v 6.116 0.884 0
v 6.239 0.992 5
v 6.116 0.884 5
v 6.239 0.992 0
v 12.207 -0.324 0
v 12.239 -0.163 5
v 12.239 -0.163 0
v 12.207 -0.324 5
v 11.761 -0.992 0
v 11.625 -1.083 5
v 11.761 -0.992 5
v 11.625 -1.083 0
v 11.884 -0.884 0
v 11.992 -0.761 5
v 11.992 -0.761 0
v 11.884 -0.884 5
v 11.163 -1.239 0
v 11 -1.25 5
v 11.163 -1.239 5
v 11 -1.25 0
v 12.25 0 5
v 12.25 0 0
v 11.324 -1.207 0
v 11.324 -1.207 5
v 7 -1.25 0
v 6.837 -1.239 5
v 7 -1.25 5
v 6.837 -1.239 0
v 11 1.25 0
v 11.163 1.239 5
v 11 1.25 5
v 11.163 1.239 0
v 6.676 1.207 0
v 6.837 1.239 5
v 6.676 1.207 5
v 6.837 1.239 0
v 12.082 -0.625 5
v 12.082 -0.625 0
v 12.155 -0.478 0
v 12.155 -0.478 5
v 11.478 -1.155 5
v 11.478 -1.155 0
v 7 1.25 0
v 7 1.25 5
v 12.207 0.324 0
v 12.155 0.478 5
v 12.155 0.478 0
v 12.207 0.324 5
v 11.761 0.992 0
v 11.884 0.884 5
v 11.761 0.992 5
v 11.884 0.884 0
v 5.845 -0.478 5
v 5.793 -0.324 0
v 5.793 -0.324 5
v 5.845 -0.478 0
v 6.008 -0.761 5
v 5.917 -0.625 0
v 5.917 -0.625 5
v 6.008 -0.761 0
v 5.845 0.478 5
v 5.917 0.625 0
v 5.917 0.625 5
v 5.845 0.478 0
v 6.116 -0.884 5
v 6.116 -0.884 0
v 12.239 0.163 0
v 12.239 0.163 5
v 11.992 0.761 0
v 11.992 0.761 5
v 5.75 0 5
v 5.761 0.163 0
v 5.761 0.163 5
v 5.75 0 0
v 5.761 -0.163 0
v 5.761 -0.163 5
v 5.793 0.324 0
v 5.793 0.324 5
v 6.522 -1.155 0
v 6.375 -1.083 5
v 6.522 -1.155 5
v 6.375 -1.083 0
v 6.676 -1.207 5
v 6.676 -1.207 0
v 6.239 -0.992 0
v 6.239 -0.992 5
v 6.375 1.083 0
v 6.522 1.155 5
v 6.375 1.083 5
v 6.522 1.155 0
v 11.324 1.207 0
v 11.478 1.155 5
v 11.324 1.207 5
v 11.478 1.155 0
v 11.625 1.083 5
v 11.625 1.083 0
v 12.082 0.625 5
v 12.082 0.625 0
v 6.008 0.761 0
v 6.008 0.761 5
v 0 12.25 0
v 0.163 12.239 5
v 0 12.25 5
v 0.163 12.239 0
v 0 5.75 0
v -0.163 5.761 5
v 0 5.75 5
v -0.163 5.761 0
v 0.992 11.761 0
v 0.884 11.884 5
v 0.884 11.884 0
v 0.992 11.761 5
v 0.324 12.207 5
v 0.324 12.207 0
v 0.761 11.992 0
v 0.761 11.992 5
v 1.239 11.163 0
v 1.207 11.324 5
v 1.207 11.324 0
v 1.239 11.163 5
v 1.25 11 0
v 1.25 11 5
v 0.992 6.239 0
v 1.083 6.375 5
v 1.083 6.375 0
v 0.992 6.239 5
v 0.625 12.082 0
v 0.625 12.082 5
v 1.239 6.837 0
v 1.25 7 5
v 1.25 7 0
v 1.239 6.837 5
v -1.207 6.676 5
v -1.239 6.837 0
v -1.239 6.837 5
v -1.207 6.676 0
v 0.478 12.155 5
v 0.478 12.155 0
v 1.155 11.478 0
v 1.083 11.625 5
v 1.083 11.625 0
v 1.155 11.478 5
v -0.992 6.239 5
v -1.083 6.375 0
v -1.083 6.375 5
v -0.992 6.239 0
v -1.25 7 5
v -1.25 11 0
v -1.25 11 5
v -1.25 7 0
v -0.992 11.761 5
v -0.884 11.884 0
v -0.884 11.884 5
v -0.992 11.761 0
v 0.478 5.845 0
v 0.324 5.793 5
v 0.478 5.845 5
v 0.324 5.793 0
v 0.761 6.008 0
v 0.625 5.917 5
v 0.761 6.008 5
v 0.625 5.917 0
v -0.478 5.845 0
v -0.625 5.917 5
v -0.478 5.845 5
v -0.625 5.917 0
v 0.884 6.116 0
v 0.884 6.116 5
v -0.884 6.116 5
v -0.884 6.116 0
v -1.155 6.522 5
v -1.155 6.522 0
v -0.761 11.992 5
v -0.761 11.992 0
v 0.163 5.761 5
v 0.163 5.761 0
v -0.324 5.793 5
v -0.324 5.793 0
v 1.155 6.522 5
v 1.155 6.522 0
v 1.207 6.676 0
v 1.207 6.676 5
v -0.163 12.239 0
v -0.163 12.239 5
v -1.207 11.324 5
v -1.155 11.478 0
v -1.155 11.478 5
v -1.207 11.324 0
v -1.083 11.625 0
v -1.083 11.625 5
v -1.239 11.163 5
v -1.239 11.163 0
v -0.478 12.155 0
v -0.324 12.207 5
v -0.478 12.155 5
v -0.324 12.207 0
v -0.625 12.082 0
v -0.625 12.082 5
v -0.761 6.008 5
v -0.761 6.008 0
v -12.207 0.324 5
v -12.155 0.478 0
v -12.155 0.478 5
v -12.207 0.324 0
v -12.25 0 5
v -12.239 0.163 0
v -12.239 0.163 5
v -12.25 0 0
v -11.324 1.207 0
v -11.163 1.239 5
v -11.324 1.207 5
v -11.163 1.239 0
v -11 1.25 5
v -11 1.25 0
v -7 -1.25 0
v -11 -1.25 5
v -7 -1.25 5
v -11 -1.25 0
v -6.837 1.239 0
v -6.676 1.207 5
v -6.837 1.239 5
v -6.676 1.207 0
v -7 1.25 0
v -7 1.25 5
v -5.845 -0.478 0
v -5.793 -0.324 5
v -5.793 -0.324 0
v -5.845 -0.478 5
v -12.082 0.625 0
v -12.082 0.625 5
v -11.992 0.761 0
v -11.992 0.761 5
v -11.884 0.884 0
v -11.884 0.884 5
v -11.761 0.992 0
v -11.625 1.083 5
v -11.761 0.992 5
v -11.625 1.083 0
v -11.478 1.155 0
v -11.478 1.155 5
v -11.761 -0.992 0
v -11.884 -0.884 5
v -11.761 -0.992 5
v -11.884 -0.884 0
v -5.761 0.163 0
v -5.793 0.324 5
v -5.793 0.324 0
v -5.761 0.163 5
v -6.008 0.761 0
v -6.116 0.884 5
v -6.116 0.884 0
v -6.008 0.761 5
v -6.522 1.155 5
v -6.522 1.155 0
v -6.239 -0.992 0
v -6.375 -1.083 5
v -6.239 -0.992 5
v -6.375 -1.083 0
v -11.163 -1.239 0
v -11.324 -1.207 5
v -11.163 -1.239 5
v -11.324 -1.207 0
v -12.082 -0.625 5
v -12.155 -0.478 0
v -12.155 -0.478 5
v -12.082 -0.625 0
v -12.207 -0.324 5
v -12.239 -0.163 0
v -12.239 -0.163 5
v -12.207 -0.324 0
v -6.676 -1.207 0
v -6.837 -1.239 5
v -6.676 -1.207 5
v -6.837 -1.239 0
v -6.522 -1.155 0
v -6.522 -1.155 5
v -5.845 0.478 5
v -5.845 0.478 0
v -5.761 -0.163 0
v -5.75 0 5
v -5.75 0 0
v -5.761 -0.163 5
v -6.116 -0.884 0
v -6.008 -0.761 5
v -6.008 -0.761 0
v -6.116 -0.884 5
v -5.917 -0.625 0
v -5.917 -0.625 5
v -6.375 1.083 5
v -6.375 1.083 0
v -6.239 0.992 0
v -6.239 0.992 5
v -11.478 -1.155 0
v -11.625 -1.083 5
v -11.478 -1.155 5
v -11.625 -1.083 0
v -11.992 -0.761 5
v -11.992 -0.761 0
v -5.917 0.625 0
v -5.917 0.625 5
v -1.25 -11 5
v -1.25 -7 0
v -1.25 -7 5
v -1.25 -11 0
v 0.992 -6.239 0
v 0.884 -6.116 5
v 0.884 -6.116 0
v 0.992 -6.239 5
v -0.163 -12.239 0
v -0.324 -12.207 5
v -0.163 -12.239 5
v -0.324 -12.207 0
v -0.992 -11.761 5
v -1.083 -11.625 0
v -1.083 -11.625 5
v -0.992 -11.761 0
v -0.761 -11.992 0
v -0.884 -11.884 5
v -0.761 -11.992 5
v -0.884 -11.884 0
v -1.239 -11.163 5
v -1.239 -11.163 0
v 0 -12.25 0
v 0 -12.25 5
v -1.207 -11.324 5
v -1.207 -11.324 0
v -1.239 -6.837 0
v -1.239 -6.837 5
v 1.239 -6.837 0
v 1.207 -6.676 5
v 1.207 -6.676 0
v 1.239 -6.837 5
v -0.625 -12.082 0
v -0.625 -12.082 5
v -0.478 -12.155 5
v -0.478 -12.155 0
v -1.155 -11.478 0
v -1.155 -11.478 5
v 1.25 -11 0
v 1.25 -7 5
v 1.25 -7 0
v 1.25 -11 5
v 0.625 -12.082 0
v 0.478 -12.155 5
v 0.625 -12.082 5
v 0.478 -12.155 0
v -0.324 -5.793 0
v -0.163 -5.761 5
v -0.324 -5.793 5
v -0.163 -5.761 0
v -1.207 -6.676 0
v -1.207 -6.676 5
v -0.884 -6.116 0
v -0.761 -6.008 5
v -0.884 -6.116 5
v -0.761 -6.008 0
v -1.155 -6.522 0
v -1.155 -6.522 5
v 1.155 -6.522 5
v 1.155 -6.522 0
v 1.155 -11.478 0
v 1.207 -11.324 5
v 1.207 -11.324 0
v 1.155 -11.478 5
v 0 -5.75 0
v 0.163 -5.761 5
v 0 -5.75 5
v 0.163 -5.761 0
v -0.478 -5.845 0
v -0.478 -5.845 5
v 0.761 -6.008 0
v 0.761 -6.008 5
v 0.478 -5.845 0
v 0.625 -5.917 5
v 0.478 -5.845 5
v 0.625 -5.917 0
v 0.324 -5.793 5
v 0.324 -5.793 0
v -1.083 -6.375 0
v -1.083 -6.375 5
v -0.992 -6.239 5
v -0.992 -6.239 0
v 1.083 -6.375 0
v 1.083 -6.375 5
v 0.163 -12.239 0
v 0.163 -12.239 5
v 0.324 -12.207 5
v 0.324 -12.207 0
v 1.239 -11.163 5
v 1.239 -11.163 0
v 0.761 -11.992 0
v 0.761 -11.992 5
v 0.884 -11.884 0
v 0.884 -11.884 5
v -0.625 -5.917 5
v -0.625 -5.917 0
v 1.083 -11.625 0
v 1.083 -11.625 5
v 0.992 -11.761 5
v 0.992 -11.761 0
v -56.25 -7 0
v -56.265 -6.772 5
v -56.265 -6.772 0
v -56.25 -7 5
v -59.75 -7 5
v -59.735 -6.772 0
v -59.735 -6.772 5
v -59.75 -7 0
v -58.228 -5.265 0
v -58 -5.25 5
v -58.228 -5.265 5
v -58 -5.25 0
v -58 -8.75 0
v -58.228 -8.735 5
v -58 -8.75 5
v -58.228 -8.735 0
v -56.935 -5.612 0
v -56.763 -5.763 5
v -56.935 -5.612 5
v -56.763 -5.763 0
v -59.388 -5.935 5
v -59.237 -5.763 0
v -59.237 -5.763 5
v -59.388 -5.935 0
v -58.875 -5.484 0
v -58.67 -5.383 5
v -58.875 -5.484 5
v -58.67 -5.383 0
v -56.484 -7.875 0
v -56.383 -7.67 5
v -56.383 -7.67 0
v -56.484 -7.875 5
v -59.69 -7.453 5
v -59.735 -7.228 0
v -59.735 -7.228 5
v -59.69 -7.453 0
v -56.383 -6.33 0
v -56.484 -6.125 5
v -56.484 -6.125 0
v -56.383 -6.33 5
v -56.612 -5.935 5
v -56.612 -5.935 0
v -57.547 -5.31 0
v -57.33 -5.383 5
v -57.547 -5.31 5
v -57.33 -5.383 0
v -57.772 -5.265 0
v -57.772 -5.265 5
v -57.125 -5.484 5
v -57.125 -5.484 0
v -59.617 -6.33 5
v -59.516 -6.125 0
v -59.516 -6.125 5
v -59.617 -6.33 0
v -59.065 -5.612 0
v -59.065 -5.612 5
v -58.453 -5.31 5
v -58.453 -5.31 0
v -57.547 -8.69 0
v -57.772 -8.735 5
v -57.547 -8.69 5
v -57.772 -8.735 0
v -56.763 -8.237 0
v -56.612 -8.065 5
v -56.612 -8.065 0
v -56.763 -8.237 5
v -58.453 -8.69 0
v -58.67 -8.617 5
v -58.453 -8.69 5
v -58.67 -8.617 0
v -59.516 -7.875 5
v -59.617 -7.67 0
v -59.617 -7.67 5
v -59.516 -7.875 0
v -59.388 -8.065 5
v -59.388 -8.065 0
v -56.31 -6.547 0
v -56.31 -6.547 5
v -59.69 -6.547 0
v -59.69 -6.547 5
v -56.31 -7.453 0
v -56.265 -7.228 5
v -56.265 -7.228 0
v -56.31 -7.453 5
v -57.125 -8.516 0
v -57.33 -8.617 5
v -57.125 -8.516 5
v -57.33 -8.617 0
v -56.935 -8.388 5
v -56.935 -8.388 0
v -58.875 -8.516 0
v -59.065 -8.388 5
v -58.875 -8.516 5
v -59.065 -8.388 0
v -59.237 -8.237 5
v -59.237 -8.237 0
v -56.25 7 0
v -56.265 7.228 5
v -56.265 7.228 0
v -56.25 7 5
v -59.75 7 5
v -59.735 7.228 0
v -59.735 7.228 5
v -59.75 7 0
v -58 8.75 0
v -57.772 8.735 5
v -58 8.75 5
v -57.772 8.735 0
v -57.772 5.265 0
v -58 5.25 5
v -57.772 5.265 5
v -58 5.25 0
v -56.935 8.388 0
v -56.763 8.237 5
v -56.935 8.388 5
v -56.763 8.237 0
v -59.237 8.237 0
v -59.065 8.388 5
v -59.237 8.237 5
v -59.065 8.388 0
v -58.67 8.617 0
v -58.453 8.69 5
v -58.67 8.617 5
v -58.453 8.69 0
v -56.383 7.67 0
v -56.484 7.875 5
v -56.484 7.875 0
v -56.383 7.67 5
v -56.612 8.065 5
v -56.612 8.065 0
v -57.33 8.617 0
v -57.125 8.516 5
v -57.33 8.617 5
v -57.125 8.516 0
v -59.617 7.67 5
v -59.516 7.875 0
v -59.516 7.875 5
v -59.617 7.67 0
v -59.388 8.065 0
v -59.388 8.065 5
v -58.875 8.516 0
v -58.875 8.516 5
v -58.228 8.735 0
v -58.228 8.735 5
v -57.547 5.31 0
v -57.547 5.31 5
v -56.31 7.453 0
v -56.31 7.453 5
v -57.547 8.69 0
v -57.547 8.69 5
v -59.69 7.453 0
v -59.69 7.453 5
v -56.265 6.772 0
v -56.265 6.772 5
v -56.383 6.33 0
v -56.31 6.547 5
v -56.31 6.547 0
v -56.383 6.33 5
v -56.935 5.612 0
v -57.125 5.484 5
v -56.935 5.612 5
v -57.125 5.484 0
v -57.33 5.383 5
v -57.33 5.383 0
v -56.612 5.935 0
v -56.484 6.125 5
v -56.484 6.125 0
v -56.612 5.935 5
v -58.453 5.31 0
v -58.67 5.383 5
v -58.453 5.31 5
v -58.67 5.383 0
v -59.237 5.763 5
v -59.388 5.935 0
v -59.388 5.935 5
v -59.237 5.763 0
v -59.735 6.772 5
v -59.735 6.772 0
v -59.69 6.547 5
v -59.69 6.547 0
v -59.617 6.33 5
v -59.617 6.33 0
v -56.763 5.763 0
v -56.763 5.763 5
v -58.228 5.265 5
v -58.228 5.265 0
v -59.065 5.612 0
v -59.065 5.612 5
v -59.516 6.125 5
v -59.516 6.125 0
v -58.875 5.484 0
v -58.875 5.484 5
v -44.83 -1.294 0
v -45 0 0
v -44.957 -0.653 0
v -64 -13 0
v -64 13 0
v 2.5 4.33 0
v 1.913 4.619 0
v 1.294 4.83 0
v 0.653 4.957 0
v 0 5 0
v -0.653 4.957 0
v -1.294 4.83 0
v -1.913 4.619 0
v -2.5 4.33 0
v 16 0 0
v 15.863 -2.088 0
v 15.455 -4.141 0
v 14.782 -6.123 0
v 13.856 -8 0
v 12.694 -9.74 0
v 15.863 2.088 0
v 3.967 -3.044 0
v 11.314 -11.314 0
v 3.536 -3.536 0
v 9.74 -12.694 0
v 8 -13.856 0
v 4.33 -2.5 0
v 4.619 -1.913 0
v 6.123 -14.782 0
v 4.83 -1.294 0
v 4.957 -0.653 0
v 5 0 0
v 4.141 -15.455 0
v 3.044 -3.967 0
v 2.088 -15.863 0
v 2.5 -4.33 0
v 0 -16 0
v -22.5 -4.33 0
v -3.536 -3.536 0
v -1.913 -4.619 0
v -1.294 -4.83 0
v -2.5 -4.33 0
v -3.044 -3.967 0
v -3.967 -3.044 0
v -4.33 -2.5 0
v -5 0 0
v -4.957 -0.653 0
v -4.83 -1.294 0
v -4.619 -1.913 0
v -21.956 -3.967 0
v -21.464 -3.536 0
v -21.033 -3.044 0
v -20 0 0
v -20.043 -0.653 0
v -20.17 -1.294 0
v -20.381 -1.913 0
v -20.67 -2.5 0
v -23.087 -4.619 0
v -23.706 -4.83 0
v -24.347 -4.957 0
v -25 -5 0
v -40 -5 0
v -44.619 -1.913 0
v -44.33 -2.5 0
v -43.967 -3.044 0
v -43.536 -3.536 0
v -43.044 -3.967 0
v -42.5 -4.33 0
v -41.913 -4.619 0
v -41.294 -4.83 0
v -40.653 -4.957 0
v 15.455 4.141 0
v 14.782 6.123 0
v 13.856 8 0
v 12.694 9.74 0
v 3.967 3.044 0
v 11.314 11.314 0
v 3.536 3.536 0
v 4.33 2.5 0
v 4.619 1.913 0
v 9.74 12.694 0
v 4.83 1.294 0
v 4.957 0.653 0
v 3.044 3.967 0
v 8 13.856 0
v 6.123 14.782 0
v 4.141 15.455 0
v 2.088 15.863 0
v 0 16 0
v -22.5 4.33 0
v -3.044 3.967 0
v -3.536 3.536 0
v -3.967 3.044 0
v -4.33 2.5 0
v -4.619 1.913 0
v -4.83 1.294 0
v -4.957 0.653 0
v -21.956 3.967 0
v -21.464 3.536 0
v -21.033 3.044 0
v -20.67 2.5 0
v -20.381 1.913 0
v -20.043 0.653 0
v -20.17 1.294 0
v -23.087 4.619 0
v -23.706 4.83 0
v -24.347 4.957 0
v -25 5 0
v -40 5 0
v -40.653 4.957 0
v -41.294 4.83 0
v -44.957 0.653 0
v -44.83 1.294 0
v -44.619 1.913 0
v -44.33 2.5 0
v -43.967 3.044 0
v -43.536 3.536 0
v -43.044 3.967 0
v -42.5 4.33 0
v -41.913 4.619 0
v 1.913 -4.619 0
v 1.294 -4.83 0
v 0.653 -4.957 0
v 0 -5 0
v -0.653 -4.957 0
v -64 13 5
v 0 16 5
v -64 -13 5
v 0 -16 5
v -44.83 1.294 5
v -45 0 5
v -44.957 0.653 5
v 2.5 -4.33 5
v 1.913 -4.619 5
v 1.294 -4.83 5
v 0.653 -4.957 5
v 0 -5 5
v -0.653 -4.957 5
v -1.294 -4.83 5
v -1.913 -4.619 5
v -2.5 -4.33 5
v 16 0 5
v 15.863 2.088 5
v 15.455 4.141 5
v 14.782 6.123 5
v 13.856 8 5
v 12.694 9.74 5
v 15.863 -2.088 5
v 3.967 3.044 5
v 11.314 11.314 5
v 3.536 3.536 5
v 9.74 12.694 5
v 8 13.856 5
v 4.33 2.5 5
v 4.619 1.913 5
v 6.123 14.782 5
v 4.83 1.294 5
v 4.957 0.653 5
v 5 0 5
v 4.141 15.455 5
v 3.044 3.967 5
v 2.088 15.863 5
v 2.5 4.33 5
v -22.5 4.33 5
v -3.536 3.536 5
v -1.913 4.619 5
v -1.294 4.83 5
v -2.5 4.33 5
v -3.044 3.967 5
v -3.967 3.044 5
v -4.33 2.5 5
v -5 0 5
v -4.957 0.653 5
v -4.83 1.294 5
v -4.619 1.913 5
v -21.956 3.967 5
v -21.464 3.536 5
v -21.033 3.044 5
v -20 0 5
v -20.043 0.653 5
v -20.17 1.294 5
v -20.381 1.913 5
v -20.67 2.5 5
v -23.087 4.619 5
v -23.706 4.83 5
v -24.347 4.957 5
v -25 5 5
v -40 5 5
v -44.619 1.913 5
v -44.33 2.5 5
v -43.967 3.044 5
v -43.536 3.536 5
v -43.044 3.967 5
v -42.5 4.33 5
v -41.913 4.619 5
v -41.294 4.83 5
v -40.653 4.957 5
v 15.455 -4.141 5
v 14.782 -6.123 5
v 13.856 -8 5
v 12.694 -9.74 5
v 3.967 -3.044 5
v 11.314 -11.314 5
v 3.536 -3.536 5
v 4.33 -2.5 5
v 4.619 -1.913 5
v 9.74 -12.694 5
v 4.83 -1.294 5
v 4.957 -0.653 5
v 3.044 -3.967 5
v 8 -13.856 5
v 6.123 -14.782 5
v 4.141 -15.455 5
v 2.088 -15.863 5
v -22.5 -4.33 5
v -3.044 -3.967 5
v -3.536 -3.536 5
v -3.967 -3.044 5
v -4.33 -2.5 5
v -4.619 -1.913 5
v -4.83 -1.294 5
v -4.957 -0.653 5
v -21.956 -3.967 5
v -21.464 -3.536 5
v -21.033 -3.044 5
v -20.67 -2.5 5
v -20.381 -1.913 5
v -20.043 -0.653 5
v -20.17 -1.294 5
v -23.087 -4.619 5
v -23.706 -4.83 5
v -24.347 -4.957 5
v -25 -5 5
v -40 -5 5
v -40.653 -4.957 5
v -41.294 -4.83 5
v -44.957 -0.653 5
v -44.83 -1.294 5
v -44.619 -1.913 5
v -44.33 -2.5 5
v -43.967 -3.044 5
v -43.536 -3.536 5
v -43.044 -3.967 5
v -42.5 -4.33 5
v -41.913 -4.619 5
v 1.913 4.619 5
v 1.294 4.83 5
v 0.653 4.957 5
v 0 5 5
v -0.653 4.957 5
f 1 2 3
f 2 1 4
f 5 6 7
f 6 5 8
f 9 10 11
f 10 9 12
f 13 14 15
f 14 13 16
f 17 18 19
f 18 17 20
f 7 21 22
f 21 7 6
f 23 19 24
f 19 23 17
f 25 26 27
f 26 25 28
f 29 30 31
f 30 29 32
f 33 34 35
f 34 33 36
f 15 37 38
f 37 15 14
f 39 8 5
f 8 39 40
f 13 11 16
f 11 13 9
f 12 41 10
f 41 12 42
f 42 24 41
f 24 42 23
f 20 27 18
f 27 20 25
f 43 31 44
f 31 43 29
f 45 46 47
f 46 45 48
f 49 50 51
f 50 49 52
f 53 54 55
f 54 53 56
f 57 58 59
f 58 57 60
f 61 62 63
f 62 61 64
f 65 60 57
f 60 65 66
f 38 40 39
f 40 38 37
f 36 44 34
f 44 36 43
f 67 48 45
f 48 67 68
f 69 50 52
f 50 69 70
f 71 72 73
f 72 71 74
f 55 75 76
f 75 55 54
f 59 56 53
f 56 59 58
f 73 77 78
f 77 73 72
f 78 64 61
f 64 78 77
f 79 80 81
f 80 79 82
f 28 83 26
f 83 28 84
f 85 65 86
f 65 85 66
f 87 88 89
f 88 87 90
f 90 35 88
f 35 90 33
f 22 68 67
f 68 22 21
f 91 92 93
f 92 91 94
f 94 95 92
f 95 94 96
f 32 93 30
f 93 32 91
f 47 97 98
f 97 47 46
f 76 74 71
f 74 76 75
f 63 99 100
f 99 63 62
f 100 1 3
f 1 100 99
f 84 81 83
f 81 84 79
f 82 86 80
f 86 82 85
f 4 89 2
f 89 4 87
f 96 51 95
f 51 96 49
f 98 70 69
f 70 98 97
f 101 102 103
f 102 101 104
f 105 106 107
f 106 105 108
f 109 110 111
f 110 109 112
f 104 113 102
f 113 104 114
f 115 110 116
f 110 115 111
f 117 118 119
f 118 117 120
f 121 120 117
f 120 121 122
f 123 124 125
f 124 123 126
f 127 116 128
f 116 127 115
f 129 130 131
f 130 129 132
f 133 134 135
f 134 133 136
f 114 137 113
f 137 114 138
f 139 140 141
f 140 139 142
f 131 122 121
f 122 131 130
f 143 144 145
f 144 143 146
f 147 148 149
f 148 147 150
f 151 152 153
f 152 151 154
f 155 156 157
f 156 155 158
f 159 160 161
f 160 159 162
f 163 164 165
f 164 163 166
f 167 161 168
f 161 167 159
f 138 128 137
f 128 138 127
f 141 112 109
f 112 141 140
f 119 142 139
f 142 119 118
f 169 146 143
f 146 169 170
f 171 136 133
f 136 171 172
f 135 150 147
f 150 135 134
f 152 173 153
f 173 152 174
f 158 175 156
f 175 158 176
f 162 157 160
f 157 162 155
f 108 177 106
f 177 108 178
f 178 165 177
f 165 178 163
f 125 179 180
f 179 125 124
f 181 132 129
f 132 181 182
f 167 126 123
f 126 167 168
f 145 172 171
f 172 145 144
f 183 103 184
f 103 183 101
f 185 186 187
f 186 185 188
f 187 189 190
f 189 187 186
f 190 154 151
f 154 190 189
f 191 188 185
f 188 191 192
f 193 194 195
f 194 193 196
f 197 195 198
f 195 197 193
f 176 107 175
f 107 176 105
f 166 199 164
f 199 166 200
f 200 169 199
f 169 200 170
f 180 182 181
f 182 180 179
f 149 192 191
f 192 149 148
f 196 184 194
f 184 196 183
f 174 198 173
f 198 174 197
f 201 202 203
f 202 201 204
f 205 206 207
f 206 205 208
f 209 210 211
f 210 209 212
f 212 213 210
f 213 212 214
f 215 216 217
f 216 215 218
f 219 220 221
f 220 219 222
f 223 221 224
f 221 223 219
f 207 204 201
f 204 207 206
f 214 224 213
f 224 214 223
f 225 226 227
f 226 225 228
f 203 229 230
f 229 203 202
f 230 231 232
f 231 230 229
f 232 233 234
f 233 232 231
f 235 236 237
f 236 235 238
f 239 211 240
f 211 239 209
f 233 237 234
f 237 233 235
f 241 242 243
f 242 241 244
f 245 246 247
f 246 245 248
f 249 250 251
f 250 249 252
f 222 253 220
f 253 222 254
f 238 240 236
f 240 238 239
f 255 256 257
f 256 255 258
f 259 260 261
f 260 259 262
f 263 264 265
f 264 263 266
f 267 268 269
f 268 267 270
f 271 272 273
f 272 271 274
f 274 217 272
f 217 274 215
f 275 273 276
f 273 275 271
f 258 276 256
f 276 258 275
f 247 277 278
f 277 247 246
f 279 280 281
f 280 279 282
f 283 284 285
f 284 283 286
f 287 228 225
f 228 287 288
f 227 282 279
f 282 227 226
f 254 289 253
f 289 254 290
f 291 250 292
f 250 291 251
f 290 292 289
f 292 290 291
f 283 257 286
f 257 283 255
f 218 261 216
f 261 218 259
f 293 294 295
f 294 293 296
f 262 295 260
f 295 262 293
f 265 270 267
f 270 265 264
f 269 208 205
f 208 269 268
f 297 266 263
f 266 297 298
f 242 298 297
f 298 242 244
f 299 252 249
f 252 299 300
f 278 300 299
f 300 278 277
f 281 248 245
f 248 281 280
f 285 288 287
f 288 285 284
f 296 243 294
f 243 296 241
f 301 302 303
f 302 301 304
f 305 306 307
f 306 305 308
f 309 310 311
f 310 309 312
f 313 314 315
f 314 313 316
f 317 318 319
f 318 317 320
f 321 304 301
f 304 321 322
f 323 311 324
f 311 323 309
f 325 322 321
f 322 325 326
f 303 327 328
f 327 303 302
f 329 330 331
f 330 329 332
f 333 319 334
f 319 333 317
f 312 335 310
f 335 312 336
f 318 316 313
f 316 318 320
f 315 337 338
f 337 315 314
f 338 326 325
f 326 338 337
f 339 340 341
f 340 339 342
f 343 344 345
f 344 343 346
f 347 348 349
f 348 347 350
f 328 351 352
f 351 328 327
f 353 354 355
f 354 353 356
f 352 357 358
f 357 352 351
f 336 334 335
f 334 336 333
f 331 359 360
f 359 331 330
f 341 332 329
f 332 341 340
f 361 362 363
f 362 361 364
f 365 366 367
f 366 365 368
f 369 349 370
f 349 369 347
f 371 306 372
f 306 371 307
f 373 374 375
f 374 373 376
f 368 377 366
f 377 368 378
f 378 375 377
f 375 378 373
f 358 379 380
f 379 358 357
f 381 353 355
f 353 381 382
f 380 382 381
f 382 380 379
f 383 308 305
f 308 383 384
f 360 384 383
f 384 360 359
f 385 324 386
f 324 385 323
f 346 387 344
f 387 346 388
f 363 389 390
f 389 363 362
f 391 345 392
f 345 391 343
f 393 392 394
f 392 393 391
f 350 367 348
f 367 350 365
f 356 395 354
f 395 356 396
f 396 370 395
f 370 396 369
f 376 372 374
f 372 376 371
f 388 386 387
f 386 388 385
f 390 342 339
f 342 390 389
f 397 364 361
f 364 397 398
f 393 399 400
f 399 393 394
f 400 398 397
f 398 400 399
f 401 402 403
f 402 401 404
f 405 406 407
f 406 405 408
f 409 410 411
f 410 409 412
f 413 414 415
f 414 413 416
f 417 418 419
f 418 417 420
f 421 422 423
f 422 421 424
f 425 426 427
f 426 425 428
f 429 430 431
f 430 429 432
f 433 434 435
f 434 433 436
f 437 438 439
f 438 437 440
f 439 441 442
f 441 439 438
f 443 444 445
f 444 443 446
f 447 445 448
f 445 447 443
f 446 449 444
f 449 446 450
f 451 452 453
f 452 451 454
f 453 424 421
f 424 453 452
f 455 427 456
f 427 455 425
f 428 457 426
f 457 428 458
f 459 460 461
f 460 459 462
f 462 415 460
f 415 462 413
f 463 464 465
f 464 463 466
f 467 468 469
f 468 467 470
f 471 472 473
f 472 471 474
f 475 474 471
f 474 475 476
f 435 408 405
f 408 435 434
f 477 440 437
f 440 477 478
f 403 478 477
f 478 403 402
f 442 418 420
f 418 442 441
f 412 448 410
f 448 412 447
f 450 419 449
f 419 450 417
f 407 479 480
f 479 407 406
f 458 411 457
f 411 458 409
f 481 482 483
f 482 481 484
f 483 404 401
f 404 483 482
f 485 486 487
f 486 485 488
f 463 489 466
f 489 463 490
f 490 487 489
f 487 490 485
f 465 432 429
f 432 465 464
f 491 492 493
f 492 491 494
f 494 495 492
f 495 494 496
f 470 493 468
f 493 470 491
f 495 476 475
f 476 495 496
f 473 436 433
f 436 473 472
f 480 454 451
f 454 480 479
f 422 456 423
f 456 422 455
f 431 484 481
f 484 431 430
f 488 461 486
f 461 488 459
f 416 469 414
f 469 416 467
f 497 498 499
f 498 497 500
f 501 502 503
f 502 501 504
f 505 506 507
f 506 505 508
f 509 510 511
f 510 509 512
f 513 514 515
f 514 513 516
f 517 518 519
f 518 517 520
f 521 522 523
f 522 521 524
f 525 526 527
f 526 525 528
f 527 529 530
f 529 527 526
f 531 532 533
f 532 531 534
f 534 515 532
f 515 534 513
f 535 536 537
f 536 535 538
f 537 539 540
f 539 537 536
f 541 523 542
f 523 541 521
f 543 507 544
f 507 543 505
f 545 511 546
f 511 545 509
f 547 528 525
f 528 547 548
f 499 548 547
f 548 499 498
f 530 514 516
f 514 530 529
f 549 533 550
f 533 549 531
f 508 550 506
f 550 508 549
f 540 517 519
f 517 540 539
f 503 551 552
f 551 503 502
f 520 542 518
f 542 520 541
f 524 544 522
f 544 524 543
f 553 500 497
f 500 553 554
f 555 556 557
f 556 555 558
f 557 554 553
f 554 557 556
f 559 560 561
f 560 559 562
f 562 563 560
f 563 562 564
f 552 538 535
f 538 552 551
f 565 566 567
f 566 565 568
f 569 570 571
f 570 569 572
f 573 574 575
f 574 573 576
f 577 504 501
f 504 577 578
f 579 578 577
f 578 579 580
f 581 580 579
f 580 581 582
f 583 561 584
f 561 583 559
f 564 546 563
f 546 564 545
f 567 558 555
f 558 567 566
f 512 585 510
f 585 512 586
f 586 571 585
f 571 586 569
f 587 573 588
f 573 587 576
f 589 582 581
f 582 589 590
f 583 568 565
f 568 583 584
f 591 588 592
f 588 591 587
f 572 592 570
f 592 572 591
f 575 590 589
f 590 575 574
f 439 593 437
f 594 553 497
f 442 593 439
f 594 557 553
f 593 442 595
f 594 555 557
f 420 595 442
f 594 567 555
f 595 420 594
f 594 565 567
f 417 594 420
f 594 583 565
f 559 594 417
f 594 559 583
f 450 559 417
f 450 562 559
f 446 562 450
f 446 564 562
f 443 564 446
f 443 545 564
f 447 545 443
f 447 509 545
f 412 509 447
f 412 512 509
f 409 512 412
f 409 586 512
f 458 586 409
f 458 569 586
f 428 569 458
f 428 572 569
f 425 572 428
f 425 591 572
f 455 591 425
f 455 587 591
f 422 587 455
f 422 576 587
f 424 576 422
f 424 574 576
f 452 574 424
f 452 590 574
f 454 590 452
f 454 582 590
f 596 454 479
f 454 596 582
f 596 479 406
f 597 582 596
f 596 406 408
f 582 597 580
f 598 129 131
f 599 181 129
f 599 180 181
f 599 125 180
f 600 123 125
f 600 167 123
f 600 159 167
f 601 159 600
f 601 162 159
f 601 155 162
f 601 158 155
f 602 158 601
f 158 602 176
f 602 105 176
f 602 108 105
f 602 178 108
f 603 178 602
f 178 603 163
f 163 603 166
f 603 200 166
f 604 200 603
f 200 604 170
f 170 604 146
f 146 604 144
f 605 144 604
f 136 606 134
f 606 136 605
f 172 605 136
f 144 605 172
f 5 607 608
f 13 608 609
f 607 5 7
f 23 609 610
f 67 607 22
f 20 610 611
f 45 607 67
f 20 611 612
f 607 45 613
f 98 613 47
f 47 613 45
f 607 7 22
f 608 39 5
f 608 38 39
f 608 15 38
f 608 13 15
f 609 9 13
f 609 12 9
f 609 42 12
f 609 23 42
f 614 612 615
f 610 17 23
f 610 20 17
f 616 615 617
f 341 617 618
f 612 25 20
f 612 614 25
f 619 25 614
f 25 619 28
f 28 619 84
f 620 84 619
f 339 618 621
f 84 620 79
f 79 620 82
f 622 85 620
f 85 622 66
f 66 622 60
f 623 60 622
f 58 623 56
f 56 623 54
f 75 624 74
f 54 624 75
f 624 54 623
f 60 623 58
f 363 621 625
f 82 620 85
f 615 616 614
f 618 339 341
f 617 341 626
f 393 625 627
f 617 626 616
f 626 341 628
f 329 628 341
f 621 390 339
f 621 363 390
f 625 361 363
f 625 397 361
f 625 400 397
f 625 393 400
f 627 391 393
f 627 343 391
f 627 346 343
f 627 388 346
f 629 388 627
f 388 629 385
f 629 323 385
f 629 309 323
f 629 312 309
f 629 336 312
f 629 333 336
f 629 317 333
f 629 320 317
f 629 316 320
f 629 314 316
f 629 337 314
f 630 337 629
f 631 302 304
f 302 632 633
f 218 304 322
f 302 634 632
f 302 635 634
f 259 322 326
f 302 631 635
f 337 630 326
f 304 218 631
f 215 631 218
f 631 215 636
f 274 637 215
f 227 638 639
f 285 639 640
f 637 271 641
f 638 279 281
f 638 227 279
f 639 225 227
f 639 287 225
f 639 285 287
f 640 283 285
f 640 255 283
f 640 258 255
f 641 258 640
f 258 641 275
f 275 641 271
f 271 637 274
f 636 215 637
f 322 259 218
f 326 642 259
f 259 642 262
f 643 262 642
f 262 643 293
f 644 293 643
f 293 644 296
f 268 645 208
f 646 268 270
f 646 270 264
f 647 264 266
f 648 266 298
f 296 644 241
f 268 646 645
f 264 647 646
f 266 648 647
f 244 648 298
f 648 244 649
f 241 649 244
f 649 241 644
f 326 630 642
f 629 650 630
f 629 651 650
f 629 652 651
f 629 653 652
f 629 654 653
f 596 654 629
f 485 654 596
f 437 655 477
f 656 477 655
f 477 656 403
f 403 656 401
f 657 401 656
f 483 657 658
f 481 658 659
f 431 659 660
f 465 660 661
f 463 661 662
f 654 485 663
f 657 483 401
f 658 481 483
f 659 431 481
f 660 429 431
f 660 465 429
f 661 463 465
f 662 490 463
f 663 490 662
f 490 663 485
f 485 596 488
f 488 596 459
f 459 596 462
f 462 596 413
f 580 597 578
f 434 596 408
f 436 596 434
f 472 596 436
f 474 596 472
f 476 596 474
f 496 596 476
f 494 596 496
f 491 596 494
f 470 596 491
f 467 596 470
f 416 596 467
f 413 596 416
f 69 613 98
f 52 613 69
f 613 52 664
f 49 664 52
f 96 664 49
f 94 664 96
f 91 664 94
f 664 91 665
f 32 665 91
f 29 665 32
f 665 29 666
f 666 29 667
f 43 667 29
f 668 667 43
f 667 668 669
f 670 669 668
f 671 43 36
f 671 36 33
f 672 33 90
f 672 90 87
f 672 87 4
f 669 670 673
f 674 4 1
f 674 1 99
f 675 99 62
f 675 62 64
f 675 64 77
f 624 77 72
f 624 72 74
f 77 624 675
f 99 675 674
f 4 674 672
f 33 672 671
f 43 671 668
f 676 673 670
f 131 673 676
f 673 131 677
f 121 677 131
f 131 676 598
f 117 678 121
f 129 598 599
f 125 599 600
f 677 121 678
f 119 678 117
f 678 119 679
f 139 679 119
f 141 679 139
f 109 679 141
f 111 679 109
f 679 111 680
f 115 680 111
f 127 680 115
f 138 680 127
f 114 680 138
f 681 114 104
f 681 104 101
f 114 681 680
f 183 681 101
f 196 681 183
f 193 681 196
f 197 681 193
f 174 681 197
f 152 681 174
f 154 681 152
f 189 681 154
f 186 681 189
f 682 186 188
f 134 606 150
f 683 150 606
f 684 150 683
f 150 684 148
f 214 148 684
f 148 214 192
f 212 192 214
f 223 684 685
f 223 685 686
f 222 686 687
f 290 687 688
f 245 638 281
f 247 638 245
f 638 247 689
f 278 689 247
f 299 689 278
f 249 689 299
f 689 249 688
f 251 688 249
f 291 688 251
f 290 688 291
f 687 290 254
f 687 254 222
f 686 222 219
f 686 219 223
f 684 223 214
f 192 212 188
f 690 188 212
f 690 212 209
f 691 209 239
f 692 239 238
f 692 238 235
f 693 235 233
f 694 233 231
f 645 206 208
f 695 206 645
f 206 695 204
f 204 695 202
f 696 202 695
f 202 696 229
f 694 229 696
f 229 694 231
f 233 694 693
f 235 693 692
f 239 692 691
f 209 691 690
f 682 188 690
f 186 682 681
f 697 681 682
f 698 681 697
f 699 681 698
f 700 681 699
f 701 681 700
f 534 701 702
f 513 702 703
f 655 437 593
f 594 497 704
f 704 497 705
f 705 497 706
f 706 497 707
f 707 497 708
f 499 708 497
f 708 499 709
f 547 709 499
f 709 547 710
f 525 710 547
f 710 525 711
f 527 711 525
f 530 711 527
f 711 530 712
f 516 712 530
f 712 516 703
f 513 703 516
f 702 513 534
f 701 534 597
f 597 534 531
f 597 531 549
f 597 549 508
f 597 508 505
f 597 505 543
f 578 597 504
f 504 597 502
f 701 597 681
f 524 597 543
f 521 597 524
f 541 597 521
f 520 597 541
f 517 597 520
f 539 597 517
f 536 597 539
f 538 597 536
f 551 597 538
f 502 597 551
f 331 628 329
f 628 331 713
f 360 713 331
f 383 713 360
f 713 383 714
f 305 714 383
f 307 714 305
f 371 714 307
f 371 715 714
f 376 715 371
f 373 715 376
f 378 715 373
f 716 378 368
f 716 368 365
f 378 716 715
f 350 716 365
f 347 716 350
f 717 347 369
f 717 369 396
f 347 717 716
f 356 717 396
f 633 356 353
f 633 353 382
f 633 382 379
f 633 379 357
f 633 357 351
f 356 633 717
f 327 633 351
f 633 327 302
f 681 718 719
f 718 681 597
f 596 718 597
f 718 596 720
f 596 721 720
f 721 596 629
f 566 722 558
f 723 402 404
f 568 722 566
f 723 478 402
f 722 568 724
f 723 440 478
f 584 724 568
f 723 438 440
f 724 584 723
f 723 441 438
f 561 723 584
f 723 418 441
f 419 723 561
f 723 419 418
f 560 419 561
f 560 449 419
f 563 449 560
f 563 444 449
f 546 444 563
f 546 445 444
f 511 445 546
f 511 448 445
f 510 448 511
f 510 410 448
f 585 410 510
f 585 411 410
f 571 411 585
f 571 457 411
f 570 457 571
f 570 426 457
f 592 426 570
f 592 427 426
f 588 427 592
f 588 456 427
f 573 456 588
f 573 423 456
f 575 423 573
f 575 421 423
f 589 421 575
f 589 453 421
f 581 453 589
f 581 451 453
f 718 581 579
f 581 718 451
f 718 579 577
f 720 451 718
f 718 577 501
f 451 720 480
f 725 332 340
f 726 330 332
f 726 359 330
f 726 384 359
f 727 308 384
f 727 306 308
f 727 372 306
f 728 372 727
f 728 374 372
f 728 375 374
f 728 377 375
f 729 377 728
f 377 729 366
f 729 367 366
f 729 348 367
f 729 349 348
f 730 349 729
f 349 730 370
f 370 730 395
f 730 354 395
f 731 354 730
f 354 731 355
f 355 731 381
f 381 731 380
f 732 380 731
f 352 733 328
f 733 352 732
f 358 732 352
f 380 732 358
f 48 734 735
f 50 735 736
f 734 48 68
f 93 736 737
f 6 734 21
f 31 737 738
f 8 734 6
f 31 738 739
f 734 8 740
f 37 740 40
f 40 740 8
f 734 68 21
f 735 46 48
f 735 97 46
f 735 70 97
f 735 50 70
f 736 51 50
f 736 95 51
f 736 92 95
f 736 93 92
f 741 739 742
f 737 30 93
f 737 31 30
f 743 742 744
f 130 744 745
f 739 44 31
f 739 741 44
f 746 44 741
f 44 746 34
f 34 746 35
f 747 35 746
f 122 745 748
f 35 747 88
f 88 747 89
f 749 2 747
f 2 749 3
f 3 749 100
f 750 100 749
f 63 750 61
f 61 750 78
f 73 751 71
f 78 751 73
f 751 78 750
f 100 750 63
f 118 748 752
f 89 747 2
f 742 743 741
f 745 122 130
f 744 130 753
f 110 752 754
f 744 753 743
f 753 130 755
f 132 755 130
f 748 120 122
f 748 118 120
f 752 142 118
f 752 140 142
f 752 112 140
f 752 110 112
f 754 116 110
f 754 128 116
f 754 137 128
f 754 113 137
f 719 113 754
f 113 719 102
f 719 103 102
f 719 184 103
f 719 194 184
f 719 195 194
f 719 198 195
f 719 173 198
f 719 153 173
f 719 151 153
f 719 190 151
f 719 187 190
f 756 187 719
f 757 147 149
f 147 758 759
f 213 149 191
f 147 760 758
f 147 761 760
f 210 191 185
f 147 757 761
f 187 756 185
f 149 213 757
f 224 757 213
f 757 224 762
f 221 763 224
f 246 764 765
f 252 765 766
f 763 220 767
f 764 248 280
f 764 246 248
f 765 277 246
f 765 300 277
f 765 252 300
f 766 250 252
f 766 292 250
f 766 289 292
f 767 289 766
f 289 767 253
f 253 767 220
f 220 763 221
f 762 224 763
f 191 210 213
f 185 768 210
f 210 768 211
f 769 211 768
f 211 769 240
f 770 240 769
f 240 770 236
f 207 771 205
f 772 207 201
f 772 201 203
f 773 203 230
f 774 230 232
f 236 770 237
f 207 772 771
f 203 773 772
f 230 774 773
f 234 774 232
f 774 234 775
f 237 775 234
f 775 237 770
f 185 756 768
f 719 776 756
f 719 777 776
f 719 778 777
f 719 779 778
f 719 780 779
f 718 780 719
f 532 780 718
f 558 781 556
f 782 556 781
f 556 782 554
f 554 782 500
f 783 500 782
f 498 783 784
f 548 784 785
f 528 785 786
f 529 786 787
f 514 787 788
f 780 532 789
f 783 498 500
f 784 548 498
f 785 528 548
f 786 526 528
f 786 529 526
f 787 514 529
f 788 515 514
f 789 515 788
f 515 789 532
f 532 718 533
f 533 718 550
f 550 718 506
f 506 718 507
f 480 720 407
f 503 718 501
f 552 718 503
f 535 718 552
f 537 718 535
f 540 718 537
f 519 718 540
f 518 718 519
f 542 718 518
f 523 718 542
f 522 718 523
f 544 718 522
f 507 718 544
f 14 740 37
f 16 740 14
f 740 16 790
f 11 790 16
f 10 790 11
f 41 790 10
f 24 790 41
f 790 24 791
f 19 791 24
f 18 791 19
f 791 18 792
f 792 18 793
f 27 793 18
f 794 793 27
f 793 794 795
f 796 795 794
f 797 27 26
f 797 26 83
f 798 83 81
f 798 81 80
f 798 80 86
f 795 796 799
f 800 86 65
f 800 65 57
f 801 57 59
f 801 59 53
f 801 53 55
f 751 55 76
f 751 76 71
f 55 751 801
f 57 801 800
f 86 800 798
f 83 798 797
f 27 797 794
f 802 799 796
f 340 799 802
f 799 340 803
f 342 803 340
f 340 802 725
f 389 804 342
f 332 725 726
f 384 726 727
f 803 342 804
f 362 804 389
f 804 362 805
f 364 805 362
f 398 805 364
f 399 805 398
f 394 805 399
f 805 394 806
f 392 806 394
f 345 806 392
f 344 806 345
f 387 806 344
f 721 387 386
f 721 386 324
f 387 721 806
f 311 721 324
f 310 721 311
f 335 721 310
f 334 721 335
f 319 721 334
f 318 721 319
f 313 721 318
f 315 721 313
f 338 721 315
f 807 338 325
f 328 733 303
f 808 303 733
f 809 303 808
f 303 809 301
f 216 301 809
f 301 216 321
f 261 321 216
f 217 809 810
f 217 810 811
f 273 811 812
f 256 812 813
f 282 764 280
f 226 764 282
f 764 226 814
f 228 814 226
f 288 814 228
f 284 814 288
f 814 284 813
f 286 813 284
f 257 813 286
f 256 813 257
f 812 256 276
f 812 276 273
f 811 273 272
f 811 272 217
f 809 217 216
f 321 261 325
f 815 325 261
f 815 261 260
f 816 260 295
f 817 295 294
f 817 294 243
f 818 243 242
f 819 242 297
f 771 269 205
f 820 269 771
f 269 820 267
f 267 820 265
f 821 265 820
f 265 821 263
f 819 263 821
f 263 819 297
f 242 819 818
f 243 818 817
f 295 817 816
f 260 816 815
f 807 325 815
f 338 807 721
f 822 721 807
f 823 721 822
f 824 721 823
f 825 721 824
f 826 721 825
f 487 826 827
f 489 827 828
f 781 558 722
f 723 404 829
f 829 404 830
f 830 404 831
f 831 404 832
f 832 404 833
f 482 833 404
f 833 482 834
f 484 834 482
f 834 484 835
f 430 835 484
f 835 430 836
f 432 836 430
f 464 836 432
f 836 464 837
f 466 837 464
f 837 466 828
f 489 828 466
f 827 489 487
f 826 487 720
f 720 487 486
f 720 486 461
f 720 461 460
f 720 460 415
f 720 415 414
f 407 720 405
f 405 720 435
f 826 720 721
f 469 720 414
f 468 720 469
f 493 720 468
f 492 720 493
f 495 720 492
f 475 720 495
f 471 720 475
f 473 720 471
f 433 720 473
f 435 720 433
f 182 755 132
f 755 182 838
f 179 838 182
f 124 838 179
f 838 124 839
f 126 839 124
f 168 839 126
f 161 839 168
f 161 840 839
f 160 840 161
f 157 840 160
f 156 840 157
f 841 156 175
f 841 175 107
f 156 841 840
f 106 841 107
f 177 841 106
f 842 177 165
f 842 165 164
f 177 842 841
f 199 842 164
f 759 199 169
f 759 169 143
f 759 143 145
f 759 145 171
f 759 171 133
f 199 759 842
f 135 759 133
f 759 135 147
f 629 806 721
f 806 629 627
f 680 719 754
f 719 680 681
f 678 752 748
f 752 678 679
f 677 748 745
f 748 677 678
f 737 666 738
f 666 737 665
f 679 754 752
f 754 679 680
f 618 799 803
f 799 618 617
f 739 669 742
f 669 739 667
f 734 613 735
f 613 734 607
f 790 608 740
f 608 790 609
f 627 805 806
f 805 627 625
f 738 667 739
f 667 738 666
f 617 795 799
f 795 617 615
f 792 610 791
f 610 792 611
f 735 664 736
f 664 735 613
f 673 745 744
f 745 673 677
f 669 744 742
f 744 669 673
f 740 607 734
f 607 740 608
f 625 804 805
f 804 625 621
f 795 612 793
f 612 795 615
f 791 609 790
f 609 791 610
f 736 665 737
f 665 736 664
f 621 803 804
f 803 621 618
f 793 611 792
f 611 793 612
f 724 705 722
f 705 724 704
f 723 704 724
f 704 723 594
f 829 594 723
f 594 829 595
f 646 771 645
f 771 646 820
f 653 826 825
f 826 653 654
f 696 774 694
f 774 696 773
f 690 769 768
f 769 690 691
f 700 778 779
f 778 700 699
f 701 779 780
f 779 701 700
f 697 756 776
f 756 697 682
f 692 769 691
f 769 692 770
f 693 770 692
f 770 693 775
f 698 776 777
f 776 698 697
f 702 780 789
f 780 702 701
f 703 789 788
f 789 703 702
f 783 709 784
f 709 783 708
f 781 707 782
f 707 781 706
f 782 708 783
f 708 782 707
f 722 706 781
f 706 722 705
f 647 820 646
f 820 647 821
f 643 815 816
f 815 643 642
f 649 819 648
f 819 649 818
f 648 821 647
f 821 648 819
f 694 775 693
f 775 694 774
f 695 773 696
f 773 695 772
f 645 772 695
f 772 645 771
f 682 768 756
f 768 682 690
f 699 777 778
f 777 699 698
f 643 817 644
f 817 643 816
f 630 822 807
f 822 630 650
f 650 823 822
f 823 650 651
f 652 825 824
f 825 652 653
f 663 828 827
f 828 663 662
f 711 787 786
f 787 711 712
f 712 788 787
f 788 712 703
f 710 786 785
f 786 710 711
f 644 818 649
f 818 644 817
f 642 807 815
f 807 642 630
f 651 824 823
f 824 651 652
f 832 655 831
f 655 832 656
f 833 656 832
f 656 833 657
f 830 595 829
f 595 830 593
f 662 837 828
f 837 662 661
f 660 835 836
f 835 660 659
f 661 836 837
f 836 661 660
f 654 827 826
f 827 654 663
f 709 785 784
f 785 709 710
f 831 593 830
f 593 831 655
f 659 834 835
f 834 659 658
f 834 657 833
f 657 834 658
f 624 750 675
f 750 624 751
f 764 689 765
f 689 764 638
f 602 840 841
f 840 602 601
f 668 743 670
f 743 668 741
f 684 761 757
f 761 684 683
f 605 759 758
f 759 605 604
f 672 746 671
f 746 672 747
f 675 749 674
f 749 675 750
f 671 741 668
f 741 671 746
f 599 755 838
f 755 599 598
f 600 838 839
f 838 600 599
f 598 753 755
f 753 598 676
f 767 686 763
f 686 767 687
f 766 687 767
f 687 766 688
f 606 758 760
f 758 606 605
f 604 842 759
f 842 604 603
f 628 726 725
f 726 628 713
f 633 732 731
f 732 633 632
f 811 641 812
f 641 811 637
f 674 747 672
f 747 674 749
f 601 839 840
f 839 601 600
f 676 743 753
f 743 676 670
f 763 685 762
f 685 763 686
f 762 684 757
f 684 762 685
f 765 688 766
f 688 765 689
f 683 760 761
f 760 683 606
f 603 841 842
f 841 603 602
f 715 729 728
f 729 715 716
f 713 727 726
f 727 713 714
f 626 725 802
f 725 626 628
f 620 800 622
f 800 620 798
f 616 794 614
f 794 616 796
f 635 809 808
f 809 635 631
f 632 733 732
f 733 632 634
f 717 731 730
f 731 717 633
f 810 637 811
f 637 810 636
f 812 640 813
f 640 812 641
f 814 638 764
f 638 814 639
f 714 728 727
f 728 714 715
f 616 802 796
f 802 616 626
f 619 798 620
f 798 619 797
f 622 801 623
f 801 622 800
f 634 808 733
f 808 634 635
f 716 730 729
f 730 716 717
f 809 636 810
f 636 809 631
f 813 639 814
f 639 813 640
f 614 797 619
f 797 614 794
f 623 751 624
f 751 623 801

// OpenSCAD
// file: hobby-joint-common.scad
// Rev A local joint datum: rotation axis at x=y=0, axial direction +z.
$fn=48;
shaft_x=-10.35;
horn_z=50;
front_t=5;
rear_top=-16.2;
rear_t=7;
bridge_r=58;
bridge_length=horn_z-rear_top;
bridge_pitch=14;
seat_d=13.2;
seat_depth=5.2;
module bridge_holes(h) {
    for(y=[-bridge_pitch/2,bridge_pitch/2])
        translate([-bridge_r,y,-1]) cylinder(d=3.5,h=h+2);
}
module arm_blank(t) {
    linear_extrude(t) hull() {
        circle(d=32);
        translate([-bridge_r,0]) square([12,26],center=true);
    }
}
module arm_window(t) {
    translate([0,0,-1]) linear_extrude(t+2) hull()
        for(x=[-40,-25]) translate([x,0]) circle(d=10);
}
// main file
include <hobby-joint-common.scad>
module front_arm() {
    difference() {
        arm_blank(front_t);
        arm_window(front_t);
        translate([0,0,-1]) cylinder(d=10,h=front_t+2);
        for(a=[0,90,180,270]) rotate([0,0,a]) hull()
            for(r=[7,11]) translate([r,0,-1]) cylinder(d=2.5,h=front_t+2);
        bridge_holes(front_t);
    }
}
front_arm();
